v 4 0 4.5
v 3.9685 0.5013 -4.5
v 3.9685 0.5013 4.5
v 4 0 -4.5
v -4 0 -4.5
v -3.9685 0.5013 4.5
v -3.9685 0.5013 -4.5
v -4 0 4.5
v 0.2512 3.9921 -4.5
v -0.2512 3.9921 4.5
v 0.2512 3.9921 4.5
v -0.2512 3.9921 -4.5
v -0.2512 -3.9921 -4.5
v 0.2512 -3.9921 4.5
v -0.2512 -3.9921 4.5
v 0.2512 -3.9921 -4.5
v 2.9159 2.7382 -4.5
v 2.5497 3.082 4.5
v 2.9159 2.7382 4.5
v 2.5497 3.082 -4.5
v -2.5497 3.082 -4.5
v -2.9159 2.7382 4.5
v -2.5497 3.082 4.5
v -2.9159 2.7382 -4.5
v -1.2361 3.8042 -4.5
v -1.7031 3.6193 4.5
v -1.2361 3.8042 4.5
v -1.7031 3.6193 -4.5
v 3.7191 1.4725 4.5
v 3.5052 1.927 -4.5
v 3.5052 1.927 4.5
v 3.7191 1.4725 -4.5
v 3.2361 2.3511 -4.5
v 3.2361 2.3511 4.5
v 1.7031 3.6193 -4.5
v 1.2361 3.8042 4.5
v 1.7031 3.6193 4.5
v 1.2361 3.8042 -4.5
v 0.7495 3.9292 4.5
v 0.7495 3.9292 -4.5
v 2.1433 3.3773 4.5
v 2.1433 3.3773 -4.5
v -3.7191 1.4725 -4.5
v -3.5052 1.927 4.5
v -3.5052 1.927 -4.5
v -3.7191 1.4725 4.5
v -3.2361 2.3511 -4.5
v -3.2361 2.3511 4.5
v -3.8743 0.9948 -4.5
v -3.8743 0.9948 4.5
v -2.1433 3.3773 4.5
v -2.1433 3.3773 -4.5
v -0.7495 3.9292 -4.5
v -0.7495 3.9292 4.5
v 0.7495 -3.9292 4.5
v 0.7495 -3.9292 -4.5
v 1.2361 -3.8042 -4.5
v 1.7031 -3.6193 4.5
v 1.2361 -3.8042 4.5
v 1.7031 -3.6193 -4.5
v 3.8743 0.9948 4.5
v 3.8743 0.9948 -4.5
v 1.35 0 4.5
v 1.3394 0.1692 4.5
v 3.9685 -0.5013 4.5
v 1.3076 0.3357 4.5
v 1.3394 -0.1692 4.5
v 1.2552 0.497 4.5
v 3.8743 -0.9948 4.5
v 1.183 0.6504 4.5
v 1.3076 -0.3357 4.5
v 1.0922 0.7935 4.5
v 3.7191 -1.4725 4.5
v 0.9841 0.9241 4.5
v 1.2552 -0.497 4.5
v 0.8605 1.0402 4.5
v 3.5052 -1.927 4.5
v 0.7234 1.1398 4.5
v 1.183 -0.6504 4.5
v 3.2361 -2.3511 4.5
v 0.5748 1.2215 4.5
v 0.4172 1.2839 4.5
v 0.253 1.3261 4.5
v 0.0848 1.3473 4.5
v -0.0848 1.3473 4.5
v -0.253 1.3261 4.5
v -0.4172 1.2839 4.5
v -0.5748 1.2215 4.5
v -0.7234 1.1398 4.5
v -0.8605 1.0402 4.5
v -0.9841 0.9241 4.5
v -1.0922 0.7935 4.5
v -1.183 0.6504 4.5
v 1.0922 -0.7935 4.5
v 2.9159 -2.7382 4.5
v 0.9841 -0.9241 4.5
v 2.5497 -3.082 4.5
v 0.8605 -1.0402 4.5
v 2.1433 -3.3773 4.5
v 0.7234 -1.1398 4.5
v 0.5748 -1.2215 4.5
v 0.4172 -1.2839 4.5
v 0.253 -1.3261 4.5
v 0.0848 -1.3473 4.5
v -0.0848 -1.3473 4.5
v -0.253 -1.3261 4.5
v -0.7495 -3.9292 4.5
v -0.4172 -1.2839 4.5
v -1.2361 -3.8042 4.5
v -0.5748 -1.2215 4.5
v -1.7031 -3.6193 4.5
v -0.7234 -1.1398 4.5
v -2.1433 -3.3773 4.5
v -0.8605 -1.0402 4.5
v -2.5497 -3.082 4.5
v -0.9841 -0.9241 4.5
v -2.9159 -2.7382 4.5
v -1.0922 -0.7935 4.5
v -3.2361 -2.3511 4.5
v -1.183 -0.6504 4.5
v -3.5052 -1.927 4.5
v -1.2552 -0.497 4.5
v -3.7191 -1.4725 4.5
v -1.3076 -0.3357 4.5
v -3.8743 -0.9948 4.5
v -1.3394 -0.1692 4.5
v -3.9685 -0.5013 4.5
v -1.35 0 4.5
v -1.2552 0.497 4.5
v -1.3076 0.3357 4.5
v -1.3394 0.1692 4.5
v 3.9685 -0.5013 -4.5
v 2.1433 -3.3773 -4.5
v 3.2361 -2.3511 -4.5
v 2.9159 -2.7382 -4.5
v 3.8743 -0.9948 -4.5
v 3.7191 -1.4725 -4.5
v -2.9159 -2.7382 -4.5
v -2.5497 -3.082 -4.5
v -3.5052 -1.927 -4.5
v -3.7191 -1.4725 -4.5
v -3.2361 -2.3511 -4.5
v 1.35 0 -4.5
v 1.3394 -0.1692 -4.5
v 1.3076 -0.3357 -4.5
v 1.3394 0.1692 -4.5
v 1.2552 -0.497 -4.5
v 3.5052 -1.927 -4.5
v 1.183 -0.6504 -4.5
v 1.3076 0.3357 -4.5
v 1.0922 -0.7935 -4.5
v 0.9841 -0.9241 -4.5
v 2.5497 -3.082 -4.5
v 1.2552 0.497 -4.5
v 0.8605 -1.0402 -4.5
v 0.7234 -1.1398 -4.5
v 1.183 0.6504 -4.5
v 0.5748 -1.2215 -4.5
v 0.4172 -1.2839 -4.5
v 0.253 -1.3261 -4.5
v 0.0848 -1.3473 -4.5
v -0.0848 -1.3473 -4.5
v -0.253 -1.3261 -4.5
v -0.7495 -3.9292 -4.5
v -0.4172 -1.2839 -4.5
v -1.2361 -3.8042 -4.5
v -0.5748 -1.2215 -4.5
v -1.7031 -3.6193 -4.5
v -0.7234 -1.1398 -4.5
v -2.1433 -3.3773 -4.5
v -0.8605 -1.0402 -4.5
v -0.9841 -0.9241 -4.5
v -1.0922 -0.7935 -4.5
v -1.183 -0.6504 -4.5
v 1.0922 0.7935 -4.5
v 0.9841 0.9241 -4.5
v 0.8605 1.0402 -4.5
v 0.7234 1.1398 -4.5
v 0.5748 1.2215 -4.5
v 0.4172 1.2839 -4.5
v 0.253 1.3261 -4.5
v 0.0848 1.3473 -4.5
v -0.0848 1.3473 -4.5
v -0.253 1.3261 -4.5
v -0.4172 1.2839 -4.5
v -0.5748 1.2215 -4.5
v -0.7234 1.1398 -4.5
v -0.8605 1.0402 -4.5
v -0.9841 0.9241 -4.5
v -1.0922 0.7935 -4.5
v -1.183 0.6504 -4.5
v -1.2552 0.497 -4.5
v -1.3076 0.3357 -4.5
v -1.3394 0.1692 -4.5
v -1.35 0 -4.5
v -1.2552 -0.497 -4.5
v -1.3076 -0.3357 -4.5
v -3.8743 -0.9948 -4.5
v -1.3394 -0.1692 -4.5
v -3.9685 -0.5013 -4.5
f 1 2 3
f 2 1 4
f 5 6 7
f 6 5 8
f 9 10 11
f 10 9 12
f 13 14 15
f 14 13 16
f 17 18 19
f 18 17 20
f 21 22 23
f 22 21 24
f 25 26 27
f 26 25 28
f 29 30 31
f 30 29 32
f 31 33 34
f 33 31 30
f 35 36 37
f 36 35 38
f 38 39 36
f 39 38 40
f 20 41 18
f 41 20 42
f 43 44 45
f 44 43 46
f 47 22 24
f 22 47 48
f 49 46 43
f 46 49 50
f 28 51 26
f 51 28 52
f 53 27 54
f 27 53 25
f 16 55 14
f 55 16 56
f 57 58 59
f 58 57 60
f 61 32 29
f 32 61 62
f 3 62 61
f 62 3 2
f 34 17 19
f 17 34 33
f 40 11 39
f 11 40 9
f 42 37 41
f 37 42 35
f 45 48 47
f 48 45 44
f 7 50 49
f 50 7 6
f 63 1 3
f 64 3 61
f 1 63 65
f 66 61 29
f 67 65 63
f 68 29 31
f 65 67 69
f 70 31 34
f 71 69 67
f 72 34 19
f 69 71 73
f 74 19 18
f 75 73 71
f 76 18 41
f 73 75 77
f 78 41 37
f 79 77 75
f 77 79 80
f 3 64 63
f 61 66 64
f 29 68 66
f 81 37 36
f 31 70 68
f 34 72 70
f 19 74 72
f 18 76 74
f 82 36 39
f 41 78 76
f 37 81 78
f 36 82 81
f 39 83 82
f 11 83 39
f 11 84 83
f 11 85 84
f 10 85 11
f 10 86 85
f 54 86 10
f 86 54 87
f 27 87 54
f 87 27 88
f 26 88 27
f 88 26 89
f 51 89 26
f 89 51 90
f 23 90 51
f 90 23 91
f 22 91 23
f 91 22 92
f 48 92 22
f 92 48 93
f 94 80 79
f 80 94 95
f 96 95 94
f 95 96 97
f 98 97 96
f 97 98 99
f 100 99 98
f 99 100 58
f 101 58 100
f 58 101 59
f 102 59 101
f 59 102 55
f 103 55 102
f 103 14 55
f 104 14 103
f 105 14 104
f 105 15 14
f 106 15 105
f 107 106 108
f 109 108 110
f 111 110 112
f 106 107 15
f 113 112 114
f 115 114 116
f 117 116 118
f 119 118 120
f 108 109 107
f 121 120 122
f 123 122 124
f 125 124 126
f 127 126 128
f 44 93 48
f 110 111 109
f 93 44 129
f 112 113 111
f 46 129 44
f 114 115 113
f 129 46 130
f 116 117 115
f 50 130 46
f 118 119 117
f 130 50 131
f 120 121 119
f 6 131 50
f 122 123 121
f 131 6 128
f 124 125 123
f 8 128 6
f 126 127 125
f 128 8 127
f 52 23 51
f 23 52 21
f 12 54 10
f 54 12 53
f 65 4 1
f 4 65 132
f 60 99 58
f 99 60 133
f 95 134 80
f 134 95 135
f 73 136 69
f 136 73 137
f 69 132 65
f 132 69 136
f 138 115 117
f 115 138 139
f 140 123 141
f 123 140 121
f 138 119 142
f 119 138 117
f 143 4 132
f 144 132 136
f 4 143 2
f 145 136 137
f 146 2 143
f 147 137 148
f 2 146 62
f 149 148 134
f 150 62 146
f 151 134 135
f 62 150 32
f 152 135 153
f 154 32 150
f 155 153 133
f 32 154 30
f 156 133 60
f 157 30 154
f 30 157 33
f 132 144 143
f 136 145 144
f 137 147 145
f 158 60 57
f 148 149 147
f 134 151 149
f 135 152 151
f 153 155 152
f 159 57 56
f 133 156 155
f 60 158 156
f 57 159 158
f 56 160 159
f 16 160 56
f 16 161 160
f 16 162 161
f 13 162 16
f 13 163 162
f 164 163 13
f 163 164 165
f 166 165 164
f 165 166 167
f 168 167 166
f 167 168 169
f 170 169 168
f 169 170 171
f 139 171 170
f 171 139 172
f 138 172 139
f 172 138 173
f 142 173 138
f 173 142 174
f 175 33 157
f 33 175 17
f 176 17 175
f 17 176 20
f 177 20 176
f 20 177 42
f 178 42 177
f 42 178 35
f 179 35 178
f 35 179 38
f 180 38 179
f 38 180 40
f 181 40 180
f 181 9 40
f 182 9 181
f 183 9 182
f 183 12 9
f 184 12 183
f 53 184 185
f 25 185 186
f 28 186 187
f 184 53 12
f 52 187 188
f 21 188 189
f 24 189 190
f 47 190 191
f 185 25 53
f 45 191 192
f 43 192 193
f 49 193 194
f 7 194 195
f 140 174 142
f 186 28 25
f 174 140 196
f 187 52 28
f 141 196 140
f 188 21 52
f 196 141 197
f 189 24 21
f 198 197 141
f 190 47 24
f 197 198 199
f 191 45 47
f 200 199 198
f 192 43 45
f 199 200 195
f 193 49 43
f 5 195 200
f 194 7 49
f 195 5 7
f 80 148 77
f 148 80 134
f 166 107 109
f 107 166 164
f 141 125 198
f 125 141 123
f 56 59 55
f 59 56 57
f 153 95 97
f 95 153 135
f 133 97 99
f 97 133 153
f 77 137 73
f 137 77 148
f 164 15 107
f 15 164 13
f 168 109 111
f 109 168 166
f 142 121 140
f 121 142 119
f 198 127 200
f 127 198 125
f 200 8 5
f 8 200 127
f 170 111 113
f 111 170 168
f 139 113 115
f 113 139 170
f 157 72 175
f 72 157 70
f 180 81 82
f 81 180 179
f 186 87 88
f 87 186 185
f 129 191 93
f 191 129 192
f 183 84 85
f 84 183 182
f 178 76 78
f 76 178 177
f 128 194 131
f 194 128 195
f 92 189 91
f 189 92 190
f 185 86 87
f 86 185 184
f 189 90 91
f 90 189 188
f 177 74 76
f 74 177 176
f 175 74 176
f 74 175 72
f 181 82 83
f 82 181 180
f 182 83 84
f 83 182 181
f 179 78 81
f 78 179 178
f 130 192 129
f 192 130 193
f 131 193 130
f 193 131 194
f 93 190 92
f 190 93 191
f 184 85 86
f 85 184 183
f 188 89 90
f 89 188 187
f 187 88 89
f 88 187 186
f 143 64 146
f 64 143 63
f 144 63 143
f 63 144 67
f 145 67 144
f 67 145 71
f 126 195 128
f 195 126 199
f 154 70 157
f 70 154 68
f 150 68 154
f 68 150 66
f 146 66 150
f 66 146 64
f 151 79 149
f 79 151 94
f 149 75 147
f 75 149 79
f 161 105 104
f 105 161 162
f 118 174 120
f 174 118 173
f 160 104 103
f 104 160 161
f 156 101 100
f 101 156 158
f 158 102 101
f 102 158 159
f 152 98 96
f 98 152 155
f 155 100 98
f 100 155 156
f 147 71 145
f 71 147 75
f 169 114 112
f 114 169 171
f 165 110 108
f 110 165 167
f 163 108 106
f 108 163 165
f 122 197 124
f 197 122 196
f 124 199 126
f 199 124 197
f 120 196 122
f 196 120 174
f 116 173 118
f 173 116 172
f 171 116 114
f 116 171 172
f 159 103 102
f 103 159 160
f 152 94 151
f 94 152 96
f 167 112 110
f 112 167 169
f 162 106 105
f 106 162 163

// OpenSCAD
$fn = 50;


difference() {
	union() {
		translate(v = [0, 0, -4.5000000000]) {
			cylinder(h = 9, r = 4.0000000000);
		}
	}
	union() {
		translate(v = [0, 0, -100.0000000000]) {
			cylinder(h = 200, r = 1.3500000000);
		}
	}
}
